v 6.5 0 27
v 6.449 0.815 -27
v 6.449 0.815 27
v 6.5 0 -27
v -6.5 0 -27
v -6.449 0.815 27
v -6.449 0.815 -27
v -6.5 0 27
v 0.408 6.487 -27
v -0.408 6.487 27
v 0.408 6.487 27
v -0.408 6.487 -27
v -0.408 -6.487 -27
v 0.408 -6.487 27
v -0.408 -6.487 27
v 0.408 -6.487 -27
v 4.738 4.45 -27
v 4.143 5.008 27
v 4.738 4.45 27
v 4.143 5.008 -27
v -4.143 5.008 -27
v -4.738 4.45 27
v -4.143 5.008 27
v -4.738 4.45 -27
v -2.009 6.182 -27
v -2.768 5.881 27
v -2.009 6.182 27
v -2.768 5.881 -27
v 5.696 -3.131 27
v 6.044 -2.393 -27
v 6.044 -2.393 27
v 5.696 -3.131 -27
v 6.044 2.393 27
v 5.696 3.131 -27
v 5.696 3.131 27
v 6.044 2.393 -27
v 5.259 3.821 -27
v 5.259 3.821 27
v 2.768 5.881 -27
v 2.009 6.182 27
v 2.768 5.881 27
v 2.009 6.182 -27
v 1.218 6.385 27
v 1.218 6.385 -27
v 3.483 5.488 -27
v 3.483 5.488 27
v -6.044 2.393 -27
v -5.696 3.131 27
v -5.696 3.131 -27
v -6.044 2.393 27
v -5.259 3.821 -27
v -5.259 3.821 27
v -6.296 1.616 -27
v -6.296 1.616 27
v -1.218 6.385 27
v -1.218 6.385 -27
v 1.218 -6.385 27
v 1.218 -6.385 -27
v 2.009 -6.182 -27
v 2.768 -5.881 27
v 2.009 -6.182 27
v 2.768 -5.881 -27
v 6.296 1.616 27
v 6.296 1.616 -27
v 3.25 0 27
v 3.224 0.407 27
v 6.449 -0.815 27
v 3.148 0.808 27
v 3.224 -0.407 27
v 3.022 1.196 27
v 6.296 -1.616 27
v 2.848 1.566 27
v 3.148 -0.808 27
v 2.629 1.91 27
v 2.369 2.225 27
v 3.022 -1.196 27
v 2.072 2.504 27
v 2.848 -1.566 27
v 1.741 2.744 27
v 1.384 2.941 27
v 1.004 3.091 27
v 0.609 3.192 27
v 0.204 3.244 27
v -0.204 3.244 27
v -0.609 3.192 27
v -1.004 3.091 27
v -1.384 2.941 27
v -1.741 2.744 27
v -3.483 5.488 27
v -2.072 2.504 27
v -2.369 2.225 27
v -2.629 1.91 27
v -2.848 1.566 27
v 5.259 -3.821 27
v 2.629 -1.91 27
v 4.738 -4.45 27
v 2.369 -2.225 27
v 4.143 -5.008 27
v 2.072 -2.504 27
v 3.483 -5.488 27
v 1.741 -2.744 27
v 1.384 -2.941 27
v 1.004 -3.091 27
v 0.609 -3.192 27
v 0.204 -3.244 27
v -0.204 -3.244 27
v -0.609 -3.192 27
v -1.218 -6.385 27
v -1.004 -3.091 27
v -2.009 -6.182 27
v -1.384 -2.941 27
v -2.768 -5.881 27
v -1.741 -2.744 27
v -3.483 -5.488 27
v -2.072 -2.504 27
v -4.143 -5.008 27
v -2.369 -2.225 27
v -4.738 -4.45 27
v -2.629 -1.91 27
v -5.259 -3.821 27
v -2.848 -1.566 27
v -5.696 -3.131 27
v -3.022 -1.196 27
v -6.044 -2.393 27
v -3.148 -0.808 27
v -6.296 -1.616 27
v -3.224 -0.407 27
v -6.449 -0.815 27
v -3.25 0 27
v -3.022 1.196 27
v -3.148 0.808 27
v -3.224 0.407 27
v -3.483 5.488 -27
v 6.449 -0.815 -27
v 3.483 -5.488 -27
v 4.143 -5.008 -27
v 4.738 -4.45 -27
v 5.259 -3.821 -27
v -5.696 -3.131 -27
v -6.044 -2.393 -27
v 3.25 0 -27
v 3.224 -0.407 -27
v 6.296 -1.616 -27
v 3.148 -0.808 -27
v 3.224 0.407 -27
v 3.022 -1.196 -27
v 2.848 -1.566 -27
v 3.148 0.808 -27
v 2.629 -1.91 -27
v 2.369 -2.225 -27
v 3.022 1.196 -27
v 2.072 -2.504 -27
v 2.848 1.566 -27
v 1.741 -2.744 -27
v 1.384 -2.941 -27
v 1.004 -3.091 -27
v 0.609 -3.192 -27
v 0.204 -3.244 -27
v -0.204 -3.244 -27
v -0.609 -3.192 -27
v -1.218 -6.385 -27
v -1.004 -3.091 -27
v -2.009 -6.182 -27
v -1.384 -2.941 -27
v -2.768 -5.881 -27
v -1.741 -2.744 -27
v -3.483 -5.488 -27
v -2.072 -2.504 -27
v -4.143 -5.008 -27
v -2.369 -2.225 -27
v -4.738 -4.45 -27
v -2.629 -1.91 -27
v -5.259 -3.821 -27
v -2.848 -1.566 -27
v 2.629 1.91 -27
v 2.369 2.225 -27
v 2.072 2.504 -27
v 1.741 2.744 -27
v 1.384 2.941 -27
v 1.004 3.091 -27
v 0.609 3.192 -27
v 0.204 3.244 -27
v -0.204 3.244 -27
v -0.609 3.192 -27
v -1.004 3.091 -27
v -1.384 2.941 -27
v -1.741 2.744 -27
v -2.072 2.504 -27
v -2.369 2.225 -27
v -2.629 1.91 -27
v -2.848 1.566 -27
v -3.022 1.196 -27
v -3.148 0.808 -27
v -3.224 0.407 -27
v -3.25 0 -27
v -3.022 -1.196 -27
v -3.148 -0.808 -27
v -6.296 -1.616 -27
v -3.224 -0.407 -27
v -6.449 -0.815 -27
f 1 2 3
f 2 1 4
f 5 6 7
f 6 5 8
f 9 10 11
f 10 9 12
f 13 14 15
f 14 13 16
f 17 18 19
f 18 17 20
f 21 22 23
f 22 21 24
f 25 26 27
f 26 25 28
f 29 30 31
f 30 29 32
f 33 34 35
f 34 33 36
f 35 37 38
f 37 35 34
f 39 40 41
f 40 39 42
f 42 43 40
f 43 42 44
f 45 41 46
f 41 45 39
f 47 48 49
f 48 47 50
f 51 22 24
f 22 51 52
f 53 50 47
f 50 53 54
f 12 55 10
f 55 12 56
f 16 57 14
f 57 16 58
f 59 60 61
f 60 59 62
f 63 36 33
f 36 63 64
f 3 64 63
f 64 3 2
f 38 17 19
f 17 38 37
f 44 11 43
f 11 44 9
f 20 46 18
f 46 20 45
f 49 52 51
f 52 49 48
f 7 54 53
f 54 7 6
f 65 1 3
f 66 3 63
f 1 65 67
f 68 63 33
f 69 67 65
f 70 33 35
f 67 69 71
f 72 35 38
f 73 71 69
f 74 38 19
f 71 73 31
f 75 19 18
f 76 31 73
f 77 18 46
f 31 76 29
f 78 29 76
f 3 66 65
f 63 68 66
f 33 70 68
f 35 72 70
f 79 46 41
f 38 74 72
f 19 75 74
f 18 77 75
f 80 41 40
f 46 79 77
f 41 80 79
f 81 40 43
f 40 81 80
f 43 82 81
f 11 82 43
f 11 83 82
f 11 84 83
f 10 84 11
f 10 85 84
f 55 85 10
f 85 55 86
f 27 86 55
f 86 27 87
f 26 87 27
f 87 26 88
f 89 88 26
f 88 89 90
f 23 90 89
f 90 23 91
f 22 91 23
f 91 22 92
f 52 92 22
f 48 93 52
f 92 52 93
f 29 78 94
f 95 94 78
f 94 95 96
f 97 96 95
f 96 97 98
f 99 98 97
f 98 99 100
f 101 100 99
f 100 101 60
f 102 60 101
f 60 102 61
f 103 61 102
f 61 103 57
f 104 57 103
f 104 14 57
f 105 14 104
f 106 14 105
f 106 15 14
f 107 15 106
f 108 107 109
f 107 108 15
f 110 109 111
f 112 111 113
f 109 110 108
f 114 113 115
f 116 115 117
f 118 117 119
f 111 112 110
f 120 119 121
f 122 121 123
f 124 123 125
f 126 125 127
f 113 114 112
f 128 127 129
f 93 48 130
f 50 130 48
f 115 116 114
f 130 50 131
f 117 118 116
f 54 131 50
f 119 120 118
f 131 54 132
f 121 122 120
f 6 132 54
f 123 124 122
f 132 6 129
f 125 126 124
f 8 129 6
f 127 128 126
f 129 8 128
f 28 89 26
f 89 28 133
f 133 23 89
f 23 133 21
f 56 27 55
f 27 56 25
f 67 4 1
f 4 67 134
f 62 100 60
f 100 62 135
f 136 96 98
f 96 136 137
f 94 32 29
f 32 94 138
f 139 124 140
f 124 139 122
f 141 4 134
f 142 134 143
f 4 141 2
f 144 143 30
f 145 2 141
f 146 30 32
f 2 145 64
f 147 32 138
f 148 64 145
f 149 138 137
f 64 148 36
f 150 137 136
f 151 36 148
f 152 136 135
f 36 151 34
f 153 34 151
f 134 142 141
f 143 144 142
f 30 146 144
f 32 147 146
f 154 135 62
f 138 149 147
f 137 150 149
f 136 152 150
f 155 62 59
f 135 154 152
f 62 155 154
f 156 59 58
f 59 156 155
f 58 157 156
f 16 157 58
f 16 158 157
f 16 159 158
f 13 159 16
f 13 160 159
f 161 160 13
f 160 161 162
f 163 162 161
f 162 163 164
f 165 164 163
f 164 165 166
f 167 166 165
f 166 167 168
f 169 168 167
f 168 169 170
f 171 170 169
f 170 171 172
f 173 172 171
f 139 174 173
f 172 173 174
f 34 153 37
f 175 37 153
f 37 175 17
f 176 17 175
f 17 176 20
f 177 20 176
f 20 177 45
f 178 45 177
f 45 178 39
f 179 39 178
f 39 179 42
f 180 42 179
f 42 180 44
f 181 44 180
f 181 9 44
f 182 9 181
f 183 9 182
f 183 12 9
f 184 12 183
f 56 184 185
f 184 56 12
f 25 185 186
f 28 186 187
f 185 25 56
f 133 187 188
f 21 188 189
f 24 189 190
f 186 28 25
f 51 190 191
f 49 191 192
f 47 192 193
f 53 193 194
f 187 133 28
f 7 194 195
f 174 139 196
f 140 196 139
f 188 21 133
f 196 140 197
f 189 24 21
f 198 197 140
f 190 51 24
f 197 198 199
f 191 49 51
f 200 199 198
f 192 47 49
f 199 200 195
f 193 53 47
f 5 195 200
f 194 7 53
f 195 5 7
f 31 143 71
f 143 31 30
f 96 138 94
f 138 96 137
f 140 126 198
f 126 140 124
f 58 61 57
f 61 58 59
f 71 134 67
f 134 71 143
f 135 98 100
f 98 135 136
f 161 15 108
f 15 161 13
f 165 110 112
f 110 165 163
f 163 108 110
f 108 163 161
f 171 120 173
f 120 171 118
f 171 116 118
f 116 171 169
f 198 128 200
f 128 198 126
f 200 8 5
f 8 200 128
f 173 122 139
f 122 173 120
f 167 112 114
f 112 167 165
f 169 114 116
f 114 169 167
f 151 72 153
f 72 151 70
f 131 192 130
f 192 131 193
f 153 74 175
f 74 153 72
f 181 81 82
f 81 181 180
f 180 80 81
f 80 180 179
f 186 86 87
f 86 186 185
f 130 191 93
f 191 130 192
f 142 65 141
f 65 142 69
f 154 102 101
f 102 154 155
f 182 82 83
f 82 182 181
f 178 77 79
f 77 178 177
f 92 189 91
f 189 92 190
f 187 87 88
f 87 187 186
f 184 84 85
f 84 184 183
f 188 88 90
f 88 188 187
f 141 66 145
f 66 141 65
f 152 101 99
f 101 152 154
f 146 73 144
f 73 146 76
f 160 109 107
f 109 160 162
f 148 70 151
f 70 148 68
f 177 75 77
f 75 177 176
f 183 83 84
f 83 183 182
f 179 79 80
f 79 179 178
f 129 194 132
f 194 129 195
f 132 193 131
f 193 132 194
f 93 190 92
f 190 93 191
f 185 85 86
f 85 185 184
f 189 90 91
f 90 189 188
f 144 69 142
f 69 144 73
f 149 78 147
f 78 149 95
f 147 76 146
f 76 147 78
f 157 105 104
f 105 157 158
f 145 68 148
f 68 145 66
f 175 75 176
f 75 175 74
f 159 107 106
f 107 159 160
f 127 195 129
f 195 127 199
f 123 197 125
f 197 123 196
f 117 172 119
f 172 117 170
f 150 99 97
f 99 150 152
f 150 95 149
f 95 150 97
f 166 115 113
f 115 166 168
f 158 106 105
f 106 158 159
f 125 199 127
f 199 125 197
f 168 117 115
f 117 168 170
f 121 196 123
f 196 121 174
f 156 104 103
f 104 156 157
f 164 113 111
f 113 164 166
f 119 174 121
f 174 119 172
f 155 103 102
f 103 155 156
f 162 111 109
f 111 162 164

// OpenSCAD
$fn = 50;


difference() {
	union() {
		translate(v = [0, 0, -27.0000000000]) {
			cylinder(h = 54, r = 6.5000000000);
		}
	}
	union() {
		translate(v = [0, 0, -100.0000000000]) {
			cylinder(h = 200, r = 3.2500000000);
		}
	}
}
